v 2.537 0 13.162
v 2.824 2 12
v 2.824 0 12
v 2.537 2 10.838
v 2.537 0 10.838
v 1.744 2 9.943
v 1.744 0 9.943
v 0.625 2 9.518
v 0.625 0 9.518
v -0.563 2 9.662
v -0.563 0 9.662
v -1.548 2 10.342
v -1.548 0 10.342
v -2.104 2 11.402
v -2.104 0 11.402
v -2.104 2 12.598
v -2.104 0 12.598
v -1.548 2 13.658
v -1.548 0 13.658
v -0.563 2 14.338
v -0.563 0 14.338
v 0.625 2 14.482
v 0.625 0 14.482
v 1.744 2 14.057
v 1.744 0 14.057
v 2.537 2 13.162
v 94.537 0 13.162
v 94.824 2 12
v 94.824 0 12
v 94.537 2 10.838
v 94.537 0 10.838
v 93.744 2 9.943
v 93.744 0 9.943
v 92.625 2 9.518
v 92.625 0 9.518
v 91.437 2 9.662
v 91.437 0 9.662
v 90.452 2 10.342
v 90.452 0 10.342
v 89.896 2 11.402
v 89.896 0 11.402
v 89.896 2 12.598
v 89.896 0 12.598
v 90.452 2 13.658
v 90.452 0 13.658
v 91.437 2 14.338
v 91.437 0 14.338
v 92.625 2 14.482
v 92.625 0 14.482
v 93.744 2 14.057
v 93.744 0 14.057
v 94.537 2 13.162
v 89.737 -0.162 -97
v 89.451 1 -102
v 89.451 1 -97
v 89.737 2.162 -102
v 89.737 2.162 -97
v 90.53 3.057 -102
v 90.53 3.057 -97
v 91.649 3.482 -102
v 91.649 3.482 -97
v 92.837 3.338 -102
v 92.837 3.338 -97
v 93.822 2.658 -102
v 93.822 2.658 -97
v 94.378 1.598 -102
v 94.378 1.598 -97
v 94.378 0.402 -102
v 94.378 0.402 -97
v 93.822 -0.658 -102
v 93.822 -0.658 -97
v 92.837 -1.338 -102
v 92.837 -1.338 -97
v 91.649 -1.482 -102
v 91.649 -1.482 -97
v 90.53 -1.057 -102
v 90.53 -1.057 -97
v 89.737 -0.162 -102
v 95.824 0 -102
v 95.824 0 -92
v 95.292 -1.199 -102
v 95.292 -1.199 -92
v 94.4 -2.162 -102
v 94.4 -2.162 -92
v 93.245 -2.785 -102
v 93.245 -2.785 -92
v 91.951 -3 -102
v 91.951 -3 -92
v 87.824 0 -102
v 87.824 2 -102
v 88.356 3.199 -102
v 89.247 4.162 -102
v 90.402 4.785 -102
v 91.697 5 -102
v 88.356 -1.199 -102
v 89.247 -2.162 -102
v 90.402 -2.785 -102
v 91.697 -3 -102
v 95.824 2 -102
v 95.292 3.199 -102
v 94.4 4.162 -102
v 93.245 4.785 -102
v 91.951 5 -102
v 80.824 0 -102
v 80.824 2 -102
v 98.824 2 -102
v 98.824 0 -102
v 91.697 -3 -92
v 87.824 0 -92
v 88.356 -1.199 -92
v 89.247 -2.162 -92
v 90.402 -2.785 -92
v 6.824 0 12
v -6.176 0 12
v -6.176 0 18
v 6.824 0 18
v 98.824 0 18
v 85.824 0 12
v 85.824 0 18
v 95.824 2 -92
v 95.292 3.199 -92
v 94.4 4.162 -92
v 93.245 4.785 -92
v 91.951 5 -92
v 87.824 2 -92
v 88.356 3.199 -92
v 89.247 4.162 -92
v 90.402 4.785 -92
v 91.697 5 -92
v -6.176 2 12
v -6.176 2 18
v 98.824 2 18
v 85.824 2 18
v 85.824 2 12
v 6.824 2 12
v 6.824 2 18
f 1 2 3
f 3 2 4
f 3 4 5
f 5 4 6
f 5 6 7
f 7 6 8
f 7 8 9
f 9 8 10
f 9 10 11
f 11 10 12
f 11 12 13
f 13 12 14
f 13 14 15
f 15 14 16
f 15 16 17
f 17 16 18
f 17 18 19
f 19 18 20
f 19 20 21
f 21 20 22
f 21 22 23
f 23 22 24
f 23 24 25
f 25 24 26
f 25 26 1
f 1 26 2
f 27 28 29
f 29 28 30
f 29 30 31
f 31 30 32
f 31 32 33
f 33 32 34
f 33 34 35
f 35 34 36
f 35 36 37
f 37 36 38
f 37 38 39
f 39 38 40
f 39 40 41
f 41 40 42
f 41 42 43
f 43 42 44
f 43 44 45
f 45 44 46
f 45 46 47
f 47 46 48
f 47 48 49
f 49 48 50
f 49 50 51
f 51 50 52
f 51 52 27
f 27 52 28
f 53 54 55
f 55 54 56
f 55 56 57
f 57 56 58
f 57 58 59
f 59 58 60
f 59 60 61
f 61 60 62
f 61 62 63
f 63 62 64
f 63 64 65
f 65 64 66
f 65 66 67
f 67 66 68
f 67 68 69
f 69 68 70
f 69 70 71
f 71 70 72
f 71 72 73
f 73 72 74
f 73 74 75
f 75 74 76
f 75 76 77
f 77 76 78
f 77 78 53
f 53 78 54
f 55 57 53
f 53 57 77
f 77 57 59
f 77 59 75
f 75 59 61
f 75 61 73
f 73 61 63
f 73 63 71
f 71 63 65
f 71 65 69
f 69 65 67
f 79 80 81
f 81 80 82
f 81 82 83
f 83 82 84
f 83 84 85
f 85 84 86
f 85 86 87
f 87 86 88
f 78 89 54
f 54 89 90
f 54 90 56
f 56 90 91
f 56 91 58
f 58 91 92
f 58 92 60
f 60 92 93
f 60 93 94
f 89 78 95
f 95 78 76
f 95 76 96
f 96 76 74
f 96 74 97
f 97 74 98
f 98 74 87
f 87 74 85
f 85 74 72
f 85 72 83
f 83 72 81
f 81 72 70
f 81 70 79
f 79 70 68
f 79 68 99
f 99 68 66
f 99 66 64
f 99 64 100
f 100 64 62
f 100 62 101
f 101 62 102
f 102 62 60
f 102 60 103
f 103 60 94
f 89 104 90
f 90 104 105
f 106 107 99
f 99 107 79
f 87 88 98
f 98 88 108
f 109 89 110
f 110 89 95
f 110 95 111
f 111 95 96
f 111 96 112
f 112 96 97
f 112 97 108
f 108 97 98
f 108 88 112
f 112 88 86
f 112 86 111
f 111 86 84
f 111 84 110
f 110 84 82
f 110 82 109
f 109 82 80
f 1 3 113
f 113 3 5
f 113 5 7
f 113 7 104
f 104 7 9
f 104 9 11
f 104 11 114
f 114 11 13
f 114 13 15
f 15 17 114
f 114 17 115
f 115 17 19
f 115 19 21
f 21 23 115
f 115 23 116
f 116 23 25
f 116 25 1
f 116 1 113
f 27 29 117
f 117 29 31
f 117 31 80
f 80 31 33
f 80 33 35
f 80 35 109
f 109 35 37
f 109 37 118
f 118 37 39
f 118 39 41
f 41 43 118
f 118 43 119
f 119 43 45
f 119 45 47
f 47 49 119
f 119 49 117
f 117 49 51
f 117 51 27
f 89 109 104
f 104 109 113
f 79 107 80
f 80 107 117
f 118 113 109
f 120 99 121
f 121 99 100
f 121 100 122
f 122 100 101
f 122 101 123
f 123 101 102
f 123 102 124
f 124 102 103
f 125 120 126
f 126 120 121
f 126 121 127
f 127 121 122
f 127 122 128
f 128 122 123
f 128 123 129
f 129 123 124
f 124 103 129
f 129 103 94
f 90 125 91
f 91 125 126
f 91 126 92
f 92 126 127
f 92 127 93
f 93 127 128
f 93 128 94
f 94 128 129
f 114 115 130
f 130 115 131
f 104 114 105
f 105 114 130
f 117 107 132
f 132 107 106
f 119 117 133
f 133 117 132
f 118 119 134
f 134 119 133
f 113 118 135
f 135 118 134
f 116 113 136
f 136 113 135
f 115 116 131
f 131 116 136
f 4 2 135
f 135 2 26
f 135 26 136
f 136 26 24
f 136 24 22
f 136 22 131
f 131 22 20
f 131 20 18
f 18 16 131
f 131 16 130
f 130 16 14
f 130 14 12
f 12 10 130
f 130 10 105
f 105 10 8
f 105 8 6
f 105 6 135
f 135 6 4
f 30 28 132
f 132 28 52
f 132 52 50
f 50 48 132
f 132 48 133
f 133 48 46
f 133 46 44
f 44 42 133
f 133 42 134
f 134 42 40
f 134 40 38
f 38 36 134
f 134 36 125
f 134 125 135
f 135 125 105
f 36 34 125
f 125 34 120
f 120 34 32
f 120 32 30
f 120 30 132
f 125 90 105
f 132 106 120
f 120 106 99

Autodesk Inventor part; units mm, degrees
ref_plane "YZ Plane" through (0, 0, 0) normal (1, 0, 0) x (0, 1, 0)
ref_plane "XZ Plane" through (0, 0, 0) normal (0, 1, 0) x (-1, 0, 0)
ref_plane "XY Plane" through (0, 0, 0) normal (0, 0, 1) x (1, 0, 0)
sketch "Sketch1" plane through (0, 0, 0) normal (0, 1, 0) x (-1, 0, 0)
  line L0 (6.1765, 12) -> (-98.8235, 12)
  line L1 (-98.8235, 12) -> (-98.8235, -102)
  line L2 (-6.8235, 12) -> (-6.8235, 18)
  line L3 (-6.8235, 18) -> (6.1765, 18)
  line L4 (6.1765, 18) -> (6.1765, 12)
  line L5 (-98.8235, 12) -> (-98.8235, 18)
  line L6 (-98.8235, 18) -> (-85.8235, 18)
  line L7 (-85.8235, 18) -> (-85.8235, 12)
  line L8 (-98.8235, -102) -> (-85.8235, -87.8857)
  line L9 (-6.8235, -2.1143) -> (6.1765, 12)
  line L10 (-98.8235, -102) -> (-80.8235, -102)
  line L11 (6.1765, 12) -> (-80.8235, -102)
  point P0 (0, 0)
  point P1 (-96.8235, 18)
  point P2 (-96.8235, 18)
  dimension "d0" = 114
  dimension "d1" = 105
  dimension "d2" = 13
  dimension "d3" = 6
  dimension "d4" = 13
  dimension "d5" = 6
  dimension "d6" = 18
extrude "Extrusion1" add sketch "Sketch1" along normal blind 2
sketch "Sketch2" plane through (0, 2, 0) normal (0, 1, 0) x (1, 0, 0)
  line L0 (98.8235, 102) -> (80.8235, 102) projected
  line L1 (95.8235, 102) -> (87.8235, 102)
  line L2 (87.8235, 102) -> (87.8235, 92)
  line L3 (87.8235, 92) -> (95.8235, 92)
  line L4 (95.8235, 92) -> (95.8235, 102)
  line L5 (98.8235, -18) -> (98.8235, 102) projected
  point P0 (0, 0)
  dimension "d9" = 10
  dimension "d10" = 8
  dimension "d11" = 3
extrude "Extrusion2" add sketch "Sketch2" along normal blind 3
fillet "Fillet1" radius 4 2 edges at (87.8235, 5, -97) (95.8235, 5, -97)
sketch "Sketch3" plane through (0, 0, 0) normal (0, -1, 0) x (1, 0, 0)
  line L0 (87.8235, -102) -> (80.8235, -102) projected
  line L1 (87.8235, -102) -> (95.8235, -102)
  line L2 (95.8235, -102) -> (95.8235, -92)
  line L3 (95.8235, -92) -> (87.8235, -92)
  line L4 (87.8235, -92) -> (87.8235, -102)
  line L5 (98.8235, 18) -> (98.8235, -102) projected
  point P0 (0, 0)
  dimension "d16" = 10
  dimension "d17" = 8
  dimension "d18" = 3
extrude "Extrusion3" add sketch "Sketch3" along normal blind 3
fillet "Fillet3" radius 4 2 edges at (87.8235, -3, -97) (95.8235, -3, -97)
sketch "Sketch4" plane through (80.8235, 0, -102) normal (0, 0, -1) x (-1, 0, 0)
  arc A0 (-15, 0) -> (-11.127, -3) centre (-11.127, 1) ccw projected
  line L0 (-11.127, 4.8105) -> (-11.127, -3)
  circle A1 centre (-11.127, 1) radius 2.5
  point P0 (80.8235, 0)
  dimension "d25" = 5
extrude "Extrusion4" cut sketch "Sketch4" against normal blind 5
sketch "Sketch5" plane through (0, 2, 0) normal (0, 1, 0) x (1, 0, 0)
  line L0 (85.8235, -12) -> (85.8235, -18) projected
  line L1 (85.8235, -12) -> (98.8235, -12)
  line L2 (98.8235, -18) -> (98.8235, 102) projected
  circle A0 centre (92.3235, -12) radius 2.5
  point P0 (0, 0)
  dimension "d26" = 5
extrude "Extrusion5" cut sketch "Sketch5" against normal blind 2
sketch "Sketch6" plane through (0, 2, 0) normal (0, 1, 0) x (1, 0, 0)
  line L0 (-6.1765, -12) -> (-6.1765, -18) projected
  line L1 (6.8235, -18) -> (6.8235, -12) projected
  line L2 (-6.1765, -12) -> (6.8235, -12)
  circle A0 centre (0.3235, -12) radius 2.5
  point P0 (0, 0)
  dimension "d29" = 5
  dimension "d32" = 6.5
  dimension "d33" = 6
extrude "Extrusion6" cut sketch "Sketch6" against normal blind 2
equation "\"d23\" = d22"
equation "\"d22\" = 5"
properties part number "Triangle"
